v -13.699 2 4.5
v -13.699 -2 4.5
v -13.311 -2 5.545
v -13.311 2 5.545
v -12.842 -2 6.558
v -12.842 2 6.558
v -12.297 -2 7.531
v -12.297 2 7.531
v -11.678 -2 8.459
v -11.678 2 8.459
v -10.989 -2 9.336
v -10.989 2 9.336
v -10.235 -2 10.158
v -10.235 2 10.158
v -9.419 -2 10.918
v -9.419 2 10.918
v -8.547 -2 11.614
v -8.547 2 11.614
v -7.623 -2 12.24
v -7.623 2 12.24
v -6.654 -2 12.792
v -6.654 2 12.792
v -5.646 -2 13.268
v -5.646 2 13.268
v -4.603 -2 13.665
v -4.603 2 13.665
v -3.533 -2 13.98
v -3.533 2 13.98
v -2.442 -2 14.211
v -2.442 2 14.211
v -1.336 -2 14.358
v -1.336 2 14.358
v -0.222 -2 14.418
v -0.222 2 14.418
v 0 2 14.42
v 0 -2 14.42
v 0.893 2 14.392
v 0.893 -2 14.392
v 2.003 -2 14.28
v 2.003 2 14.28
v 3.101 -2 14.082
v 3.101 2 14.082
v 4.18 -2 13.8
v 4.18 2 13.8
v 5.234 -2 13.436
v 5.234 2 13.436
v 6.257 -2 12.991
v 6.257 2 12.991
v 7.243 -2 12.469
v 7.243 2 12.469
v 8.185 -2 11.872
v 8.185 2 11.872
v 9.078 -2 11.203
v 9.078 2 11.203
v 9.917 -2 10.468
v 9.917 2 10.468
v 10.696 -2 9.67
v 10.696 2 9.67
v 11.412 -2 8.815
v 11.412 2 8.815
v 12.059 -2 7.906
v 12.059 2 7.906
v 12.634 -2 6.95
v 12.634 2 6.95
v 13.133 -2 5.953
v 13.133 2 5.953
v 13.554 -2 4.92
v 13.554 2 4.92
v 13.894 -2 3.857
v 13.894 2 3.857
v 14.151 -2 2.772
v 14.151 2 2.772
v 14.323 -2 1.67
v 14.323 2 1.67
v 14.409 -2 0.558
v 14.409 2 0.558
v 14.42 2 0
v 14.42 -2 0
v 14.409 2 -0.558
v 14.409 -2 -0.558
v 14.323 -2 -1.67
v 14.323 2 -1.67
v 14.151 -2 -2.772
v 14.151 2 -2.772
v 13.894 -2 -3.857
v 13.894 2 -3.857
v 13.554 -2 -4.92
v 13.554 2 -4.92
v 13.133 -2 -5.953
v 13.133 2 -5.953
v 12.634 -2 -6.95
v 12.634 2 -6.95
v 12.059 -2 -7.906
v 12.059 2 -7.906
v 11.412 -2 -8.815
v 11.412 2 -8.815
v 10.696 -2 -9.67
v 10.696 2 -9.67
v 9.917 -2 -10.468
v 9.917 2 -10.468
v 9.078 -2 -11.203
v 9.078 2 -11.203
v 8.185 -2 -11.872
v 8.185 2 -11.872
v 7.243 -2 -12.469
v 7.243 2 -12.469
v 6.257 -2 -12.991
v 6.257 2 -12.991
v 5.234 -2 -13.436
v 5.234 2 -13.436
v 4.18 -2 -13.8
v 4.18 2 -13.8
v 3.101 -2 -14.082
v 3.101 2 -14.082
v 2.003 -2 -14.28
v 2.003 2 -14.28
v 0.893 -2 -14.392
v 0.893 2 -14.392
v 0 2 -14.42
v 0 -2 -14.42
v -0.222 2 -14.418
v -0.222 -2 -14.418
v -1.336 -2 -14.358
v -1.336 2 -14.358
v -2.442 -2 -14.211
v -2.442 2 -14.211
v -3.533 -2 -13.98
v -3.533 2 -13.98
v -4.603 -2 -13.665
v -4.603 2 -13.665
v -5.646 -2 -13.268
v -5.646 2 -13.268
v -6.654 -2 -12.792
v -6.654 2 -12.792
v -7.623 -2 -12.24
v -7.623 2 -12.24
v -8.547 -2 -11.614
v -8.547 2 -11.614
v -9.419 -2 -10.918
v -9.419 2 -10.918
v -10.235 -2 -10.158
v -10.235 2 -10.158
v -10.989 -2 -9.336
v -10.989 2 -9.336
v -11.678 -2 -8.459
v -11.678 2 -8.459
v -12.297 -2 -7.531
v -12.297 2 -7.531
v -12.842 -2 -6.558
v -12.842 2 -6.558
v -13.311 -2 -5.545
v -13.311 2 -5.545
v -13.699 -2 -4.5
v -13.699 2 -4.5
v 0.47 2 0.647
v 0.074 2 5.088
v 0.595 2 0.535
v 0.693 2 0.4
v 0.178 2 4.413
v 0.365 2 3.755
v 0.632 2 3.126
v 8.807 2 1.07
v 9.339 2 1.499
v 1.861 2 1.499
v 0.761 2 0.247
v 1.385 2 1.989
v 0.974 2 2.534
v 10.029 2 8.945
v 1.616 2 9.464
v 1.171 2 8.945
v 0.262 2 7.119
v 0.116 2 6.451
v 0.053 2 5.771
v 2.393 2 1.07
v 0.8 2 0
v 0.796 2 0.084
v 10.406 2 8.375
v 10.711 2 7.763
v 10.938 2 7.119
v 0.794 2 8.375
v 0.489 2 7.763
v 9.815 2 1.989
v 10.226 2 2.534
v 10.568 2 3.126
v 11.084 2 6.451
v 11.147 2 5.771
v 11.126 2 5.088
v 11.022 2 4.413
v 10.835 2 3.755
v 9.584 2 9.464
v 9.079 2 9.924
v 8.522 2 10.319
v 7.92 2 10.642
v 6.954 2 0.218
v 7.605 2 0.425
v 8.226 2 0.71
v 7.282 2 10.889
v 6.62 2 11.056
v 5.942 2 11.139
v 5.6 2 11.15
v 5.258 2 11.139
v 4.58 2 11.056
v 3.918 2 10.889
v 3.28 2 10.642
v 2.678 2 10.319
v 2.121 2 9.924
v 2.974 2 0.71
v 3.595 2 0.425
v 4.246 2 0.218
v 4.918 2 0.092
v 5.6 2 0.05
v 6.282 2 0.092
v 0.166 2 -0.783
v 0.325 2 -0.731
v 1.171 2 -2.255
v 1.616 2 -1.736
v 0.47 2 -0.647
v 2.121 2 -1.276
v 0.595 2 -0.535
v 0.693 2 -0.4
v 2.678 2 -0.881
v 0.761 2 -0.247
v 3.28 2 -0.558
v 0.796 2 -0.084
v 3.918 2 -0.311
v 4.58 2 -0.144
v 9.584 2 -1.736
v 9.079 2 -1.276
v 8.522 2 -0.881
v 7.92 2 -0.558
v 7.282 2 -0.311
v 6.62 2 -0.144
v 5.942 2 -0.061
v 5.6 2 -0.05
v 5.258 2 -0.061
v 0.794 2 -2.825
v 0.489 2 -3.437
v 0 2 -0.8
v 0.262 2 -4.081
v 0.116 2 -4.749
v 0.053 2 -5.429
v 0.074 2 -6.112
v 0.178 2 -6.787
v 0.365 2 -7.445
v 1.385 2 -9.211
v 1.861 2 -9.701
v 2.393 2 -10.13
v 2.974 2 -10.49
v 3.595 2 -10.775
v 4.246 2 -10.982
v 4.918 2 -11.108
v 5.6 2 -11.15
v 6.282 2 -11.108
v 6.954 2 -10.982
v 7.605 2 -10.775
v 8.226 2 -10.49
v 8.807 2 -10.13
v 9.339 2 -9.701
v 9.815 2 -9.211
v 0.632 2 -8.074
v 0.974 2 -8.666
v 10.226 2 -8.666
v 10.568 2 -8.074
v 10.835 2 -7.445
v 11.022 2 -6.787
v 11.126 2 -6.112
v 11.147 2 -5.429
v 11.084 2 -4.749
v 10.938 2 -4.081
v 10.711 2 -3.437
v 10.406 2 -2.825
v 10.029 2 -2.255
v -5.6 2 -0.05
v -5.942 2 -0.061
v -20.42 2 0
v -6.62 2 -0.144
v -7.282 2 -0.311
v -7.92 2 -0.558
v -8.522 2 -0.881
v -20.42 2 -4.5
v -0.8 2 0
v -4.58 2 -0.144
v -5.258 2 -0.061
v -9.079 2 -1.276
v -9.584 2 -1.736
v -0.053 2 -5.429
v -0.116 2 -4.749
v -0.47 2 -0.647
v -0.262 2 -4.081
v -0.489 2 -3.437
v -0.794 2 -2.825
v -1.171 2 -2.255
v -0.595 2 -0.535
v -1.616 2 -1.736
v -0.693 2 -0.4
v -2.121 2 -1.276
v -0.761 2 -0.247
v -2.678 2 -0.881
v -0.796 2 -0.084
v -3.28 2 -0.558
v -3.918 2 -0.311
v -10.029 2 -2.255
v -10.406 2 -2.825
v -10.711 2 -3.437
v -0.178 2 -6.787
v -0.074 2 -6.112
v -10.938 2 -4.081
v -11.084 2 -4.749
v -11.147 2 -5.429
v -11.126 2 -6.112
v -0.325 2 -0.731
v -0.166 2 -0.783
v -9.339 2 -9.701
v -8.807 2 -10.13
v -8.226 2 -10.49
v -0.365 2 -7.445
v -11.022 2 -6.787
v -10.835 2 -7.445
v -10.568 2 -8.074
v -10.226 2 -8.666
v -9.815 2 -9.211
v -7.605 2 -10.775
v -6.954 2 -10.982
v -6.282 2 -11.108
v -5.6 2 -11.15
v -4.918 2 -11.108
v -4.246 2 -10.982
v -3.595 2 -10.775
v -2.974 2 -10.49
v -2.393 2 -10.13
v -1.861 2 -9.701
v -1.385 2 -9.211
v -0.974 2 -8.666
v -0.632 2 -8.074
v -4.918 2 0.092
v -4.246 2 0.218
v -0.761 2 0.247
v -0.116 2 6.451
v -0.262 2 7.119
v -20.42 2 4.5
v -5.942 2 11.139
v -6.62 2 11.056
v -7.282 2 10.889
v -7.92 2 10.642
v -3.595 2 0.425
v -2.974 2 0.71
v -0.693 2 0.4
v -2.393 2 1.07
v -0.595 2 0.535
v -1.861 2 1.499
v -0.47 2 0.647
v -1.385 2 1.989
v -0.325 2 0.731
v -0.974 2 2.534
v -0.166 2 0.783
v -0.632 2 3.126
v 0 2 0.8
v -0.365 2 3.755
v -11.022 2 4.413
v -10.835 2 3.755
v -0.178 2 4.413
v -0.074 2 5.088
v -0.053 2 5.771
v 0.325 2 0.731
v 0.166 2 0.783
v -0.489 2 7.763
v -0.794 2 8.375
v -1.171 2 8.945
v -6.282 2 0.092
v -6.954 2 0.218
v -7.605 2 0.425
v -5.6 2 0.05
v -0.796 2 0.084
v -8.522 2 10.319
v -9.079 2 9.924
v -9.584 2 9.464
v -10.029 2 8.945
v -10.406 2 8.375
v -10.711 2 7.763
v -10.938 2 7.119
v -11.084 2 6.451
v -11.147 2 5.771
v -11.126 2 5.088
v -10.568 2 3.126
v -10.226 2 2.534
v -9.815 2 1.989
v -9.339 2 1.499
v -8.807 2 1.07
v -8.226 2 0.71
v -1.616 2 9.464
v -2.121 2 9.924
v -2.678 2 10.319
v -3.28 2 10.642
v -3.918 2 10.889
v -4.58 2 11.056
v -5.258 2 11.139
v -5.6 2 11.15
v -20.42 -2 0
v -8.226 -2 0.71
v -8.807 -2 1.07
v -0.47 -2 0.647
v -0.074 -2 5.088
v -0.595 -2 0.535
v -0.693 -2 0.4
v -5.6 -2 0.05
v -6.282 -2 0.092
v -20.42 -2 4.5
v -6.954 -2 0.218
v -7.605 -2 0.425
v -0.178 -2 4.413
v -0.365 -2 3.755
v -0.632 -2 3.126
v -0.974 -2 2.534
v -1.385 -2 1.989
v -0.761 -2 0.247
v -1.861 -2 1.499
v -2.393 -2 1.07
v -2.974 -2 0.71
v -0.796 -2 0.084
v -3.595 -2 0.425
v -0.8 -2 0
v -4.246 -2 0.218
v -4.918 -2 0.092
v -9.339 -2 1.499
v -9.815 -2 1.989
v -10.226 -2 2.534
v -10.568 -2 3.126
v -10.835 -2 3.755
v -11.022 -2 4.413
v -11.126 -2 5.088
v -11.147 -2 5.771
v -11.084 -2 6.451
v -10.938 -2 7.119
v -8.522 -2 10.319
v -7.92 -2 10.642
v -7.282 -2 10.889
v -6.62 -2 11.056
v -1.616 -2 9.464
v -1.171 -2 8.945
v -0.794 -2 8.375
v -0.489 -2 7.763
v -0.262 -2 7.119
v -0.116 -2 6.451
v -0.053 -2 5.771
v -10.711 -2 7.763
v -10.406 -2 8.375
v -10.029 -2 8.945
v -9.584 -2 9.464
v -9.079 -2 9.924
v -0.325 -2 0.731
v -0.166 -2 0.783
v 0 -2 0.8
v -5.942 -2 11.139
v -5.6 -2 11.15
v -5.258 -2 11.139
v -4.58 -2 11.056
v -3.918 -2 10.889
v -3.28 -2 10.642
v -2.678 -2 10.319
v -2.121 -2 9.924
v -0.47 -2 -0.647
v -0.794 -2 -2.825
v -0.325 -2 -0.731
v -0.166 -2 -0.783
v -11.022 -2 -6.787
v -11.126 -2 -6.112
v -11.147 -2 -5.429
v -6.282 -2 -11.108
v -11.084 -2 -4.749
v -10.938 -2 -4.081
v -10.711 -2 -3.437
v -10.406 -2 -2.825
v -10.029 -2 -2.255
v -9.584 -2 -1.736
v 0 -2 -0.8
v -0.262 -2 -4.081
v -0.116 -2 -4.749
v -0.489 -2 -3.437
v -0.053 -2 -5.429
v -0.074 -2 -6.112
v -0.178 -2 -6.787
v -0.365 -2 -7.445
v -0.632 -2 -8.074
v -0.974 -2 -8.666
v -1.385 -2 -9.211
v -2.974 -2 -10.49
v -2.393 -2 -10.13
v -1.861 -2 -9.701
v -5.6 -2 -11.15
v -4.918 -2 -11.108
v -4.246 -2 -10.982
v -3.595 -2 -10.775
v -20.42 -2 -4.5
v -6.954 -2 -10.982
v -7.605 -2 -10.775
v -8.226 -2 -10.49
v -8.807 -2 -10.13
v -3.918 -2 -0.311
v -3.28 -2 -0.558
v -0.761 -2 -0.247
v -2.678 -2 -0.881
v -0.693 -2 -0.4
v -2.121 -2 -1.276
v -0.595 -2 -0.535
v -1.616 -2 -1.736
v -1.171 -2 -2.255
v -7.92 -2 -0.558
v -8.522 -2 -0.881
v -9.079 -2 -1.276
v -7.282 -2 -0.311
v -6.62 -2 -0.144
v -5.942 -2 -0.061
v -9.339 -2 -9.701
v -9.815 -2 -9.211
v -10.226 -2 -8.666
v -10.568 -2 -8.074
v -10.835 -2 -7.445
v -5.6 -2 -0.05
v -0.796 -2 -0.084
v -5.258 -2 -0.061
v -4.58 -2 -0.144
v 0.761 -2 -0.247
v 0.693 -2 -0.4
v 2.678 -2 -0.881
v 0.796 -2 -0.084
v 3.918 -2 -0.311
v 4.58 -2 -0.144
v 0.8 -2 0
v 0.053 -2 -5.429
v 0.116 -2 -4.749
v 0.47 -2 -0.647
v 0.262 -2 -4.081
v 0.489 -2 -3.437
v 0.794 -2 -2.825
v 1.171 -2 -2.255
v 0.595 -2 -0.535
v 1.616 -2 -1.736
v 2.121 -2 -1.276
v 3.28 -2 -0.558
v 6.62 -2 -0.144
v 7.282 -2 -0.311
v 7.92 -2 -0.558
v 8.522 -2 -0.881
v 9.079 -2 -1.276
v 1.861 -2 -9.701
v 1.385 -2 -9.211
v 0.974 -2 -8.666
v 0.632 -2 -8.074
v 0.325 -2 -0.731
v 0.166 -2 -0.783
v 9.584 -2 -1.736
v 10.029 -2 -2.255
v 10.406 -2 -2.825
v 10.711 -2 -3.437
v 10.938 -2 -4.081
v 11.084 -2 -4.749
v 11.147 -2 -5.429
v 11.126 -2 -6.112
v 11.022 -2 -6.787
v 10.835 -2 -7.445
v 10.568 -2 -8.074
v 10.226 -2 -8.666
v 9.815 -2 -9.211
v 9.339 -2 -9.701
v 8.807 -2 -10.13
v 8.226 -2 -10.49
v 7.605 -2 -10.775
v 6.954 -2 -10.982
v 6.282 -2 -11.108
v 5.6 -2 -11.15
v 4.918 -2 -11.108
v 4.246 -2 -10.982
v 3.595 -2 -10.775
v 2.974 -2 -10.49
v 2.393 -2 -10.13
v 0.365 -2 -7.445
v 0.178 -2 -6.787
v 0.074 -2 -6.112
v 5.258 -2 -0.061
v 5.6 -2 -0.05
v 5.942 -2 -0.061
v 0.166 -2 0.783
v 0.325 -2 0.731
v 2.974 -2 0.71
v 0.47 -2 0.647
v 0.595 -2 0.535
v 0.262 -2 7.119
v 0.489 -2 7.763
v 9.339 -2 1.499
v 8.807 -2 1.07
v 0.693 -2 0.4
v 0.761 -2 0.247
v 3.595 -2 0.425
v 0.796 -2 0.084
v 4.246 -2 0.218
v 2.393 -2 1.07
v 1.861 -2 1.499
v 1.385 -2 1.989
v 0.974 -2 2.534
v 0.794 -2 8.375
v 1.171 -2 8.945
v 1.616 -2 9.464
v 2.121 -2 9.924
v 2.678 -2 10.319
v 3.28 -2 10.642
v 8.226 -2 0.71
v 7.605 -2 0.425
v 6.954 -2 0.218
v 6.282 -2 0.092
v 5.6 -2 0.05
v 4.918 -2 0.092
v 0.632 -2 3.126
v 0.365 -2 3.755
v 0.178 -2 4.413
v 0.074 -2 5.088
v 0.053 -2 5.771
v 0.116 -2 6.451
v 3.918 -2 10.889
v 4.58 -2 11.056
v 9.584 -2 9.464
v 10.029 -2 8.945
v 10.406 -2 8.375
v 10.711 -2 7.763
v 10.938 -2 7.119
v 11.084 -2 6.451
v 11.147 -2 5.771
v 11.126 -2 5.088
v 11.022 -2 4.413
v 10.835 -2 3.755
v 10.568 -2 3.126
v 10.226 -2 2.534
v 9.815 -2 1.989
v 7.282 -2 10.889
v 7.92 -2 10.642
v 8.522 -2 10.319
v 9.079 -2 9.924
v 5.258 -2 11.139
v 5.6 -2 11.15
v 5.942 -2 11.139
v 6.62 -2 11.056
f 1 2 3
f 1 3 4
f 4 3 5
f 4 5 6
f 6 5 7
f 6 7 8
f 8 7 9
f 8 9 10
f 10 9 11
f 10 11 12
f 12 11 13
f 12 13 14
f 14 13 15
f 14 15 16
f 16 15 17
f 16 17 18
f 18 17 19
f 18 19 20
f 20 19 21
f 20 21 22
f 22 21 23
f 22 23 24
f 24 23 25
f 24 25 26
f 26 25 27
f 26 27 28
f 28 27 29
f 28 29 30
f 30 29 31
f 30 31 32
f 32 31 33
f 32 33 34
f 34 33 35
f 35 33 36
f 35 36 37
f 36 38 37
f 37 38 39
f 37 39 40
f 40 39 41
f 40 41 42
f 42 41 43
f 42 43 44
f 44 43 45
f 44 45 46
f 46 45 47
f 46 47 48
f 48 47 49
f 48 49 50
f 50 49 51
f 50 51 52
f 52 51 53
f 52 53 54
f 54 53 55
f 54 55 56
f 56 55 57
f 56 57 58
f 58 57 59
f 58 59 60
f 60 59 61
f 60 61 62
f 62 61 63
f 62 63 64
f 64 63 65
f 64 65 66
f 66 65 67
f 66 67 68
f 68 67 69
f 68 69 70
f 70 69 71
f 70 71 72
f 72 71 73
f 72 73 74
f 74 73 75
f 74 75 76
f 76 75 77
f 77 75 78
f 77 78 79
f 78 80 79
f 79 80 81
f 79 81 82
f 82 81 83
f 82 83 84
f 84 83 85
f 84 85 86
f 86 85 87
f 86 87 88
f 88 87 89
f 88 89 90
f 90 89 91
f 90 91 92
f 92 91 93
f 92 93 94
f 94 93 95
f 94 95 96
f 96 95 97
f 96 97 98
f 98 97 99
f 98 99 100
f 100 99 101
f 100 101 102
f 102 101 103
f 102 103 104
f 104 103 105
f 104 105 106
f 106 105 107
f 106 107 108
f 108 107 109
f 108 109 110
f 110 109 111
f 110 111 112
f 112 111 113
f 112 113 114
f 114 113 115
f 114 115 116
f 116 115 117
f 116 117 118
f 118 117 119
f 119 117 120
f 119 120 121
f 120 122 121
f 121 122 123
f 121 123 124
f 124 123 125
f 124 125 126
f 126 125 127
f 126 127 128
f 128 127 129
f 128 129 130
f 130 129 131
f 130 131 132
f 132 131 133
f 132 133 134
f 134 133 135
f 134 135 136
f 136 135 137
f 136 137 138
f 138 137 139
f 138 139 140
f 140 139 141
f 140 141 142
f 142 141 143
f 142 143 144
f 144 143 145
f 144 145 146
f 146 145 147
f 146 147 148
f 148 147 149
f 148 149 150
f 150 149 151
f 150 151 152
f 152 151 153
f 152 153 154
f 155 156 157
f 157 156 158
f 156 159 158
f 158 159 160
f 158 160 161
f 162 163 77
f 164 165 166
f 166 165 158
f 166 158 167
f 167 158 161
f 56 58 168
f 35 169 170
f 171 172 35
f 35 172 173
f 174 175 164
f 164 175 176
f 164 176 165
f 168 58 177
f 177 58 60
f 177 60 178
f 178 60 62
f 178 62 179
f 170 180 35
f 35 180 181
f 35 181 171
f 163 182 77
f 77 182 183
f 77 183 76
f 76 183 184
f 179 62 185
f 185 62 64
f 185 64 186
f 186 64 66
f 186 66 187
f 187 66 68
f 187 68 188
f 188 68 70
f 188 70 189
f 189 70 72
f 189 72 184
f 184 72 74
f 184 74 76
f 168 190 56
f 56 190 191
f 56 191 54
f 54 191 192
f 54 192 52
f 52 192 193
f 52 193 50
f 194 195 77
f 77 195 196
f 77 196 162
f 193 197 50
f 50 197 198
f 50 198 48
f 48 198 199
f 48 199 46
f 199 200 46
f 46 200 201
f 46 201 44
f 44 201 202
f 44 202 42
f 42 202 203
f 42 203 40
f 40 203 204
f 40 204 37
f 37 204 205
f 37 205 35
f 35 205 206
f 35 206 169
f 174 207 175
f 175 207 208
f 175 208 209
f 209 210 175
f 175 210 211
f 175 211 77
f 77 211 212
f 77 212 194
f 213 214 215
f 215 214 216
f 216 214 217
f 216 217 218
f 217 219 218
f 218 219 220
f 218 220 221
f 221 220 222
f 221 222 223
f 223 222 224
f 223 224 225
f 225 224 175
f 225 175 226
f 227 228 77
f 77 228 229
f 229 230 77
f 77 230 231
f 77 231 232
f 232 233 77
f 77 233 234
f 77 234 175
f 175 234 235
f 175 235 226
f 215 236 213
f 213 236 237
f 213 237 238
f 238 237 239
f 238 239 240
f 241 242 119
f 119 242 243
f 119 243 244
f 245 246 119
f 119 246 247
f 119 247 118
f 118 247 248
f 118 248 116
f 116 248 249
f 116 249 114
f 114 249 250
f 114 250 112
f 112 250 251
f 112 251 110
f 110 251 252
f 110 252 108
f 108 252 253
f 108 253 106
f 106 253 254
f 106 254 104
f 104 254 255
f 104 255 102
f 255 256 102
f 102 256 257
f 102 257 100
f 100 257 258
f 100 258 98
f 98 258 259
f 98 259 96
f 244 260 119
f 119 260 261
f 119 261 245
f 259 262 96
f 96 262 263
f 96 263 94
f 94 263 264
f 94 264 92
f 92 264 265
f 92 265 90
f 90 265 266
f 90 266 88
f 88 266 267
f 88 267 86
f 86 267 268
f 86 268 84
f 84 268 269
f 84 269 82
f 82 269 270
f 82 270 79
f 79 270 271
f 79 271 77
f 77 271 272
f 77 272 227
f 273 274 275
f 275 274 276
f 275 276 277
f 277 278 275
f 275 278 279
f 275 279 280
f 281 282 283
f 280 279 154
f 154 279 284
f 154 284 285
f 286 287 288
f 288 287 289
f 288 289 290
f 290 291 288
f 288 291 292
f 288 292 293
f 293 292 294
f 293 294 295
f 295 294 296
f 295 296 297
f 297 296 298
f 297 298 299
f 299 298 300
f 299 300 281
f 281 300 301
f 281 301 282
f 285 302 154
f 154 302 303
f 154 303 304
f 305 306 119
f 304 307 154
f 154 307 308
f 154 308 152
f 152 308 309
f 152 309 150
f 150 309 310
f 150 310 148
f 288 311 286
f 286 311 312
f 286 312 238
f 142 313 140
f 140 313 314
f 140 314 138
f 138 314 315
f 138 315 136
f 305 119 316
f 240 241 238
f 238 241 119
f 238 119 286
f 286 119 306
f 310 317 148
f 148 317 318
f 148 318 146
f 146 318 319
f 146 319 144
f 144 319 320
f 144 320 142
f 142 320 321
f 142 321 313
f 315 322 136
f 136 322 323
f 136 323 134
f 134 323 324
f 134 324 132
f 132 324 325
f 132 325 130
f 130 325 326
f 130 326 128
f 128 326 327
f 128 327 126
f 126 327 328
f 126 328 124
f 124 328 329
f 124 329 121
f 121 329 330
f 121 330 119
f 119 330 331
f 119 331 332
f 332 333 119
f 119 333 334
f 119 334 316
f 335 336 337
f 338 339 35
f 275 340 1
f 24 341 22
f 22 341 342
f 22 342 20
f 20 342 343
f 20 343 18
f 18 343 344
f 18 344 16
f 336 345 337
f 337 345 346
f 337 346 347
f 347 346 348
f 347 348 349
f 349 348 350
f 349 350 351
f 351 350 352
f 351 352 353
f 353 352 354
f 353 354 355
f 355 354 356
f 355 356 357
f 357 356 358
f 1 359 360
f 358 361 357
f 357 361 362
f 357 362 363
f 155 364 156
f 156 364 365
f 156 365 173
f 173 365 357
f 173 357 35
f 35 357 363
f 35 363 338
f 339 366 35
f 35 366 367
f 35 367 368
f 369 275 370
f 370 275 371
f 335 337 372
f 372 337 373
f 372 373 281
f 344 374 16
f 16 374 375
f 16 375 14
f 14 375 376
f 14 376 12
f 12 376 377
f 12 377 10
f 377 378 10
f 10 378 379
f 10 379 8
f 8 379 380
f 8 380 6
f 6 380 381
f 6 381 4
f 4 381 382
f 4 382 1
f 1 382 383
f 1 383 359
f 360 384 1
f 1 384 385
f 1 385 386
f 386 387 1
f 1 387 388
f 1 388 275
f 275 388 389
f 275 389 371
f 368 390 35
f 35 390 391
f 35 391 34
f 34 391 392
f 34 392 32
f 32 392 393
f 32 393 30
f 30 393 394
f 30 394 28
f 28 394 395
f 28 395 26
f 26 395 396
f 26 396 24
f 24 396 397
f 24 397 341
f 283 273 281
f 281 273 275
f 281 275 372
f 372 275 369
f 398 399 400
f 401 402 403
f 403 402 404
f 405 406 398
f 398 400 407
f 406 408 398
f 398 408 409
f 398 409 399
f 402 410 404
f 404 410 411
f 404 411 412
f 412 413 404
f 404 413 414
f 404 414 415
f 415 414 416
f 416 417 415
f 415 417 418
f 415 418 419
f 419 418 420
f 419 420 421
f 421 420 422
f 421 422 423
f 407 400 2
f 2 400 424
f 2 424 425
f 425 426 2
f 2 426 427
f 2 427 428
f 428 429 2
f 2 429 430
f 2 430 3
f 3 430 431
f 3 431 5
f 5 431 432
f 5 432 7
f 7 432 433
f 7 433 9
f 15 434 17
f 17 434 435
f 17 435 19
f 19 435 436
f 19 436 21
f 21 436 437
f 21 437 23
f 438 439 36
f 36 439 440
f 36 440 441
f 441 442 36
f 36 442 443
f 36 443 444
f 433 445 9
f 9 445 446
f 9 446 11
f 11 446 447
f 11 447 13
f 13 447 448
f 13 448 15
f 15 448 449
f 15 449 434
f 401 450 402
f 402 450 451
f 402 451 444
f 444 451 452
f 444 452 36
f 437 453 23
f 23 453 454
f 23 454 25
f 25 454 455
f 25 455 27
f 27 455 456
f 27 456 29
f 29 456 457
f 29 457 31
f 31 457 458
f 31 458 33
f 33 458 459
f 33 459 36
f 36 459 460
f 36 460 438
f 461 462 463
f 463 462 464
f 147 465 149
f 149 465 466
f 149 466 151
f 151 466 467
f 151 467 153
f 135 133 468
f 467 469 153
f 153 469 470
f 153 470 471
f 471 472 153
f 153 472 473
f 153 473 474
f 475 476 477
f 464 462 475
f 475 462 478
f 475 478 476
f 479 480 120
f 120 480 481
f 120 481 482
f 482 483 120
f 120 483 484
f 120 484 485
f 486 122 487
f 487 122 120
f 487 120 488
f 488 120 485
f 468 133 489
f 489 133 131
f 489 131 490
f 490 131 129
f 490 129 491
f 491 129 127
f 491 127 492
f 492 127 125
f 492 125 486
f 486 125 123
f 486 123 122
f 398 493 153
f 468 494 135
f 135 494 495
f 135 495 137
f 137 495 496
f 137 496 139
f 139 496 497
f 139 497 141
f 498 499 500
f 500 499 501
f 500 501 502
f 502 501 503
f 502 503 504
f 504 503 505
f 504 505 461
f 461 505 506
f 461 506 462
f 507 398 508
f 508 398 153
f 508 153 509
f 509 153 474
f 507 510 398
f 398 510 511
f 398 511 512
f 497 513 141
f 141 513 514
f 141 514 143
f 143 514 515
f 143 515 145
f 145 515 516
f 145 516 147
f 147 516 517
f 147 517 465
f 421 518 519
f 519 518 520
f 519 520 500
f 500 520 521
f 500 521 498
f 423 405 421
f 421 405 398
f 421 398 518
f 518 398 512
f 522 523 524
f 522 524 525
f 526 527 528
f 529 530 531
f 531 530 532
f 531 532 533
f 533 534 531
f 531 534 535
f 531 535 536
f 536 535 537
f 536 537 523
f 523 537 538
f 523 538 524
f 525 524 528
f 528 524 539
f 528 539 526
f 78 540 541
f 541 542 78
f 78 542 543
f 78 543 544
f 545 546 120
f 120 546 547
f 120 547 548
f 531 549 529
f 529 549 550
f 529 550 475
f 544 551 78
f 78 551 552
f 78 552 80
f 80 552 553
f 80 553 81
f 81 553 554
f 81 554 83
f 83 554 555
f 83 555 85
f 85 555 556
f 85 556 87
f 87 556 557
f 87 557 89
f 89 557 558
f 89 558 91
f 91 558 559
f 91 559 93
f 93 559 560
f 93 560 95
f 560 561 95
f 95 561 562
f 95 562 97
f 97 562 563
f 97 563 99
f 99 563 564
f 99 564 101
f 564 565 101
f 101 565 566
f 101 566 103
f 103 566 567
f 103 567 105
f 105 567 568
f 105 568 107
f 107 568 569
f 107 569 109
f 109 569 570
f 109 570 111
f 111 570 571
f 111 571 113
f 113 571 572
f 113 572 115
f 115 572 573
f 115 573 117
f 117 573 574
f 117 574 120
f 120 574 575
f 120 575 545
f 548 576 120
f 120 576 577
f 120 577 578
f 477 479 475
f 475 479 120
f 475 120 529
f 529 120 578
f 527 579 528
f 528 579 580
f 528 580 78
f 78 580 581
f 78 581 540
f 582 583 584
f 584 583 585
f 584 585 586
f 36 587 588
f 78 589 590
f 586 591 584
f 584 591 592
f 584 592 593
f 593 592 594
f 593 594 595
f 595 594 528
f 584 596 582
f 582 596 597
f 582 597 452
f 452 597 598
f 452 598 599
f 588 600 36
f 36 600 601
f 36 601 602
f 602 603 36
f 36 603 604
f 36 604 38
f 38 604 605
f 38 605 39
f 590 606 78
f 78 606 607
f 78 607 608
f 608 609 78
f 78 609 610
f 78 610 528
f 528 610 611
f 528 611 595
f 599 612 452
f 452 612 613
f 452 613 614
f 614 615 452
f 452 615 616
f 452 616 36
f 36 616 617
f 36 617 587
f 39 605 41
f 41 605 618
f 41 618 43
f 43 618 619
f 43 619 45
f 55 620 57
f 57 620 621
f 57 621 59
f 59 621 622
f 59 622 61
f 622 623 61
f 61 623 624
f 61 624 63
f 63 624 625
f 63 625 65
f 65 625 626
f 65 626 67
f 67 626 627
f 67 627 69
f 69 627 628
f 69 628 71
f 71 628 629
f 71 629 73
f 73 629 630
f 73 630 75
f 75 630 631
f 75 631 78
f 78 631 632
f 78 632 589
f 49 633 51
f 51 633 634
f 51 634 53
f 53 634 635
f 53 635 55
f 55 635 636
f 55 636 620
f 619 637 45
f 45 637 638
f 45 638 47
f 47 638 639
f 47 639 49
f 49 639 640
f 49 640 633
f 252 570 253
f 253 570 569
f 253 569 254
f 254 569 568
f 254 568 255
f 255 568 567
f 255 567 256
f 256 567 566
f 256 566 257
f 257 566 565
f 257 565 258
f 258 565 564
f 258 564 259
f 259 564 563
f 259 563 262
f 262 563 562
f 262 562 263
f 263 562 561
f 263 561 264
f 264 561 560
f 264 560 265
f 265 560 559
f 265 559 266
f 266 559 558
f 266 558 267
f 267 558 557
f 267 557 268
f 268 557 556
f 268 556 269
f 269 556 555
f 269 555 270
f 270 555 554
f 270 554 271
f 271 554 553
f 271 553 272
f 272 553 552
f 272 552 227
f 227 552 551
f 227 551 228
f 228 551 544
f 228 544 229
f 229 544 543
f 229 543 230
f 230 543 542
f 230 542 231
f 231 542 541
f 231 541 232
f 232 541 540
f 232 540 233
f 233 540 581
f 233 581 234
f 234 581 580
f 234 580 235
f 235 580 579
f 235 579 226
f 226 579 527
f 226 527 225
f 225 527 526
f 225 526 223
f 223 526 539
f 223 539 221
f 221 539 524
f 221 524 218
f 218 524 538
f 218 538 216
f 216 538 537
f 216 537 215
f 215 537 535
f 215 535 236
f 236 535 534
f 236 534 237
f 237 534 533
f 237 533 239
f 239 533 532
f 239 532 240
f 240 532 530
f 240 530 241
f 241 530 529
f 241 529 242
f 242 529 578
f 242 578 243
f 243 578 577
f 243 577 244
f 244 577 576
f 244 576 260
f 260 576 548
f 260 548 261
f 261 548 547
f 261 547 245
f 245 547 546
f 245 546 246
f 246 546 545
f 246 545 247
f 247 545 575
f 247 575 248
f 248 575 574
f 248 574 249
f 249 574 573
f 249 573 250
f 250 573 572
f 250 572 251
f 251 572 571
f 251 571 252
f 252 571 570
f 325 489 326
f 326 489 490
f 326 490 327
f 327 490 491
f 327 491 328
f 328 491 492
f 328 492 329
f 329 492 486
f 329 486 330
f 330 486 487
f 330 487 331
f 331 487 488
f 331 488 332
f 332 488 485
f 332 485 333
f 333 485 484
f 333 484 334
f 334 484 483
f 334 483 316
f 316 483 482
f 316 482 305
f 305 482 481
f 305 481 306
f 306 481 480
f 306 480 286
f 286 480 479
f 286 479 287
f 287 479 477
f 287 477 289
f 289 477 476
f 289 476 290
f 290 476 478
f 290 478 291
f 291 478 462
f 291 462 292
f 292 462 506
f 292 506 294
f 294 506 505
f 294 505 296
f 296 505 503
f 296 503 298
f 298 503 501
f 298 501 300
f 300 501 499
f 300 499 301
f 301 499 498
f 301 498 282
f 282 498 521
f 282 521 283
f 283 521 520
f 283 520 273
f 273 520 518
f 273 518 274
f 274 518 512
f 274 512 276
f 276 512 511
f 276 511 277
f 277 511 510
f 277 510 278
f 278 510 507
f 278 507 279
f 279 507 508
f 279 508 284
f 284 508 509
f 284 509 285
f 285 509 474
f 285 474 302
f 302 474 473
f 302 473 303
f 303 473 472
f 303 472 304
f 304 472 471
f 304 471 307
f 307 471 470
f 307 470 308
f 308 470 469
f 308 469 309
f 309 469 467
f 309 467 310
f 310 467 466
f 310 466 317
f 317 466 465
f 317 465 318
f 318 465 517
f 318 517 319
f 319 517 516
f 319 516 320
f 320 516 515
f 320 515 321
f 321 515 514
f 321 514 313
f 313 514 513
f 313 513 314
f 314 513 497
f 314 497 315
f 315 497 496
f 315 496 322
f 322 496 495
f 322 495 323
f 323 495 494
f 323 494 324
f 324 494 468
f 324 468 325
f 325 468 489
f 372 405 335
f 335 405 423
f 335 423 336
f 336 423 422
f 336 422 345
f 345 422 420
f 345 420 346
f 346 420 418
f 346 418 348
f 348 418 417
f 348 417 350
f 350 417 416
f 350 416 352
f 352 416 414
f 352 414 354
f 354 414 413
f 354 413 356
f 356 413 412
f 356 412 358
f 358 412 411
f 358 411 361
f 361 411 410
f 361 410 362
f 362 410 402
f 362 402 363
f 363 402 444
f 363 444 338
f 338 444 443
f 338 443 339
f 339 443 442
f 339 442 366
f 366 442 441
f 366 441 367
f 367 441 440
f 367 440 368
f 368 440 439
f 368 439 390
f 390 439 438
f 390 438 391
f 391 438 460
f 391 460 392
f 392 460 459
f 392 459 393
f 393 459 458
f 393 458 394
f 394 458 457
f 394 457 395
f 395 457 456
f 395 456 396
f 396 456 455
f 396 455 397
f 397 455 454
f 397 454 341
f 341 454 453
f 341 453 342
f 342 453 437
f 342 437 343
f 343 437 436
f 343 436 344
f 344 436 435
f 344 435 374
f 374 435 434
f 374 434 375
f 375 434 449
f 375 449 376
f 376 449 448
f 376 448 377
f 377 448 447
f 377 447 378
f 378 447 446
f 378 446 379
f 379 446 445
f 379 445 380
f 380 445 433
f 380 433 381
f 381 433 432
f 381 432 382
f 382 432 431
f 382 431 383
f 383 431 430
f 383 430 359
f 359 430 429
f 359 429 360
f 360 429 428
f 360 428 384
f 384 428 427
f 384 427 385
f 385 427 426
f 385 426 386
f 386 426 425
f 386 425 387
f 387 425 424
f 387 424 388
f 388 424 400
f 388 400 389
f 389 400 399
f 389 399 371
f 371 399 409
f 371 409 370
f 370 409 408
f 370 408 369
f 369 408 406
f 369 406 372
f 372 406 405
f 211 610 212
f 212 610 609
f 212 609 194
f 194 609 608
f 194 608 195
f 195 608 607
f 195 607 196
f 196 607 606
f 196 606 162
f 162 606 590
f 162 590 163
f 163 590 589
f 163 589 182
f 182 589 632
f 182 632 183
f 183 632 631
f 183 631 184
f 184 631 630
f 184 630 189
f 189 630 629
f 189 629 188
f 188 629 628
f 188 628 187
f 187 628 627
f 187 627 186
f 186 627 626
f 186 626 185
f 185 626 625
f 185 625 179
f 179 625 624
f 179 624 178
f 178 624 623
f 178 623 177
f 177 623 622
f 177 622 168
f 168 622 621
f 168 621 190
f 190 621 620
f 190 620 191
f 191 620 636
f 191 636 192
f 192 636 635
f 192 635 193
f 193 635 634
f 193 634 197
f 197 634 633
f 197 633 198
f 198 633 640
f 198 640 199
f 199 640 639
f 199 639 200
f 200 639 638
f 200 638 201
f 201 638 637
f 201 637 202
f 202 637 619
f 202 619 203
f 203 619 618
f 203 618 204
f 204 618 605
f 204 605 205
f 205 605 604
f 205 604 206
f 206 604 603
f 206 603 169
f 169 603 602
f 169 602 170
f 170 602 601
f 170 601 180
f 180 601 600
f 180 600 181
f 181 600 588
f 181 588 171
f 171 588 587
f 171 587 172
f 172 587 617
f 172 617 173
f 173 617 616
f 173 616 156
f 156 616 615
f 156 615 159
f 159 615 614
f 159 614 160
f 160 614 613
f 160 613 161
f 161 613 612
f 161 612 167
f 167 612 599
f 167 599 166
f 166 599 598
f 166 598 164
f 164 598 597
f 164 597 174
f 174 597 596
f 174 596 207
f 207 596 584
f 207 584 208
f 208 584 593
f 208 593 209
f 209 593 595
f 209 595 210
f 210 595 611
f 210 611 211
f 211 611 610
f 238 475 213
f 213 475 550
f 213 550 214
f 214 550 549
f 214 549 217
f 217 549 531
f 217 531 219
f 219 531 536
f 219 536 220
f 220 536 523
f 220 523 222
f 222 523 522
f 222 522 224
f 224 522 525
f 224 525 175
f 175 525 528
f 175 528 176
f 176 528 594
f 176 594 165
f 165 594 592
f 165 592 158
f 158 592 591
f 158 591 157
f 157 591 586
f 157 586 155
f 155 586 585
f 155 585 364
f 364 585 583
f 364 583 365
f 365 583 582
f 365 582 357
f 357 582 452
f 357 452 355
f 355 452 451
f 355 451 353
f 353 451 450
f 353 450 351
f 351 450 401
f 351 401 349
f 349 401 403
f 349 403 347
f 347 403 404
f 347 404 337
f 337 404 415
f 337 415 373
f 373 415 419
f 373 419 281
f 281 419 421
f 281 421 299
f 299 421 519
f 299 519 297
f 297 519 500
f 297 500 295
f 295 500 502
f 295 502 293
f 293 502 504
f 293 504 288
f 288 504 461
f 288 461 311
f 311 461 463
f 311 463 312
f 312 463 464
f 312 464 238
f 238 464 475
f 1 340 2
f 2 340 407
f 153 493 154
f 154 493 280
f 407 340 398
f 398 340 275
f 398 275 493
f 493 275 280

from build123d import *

# Parameters (mm, degrees)
SKETCH1_R           = 14.419595949
SKETCH1_R_2         = 5.55
SKETCH1_R_3         = 0.8
PLACA_CABEZAL_DEPTH = 4
SKETCH2_W           = 7.5
SKETCH2_H           = 9
PATA_AL_HUESO_DEPTH = 4


with BuildPart() as part:
    # Sketch1 → Placa_cabezal (new body)
    with BuildSketch(Plane(origin=(0, -2, 0), x_dir=(1, 0, 0), z_dir=(0, 1, 0))):
        with Locations(Location((0, 0, 0), (0, 0, 270))):
            Circle(SKETCH1_R)
        with Locations(Location((5.6, 5.6, 0), (0, 0, 270))):
            Circle(SKETCH1_R_2, mode=Mode.SUBTRACT)
        with Locations(Location((-5.6, 5.6, 0), (0, 0, 270))):
            Circle(SKETCH1_R_2, mode=Mode.SUBTRACT)
        with Locations(Location((-5.6, -5.6, 0), (0, 0, 270))):
            Circle(SKETCH1_R_2, mode=Mode.SUBTRACT)
        with Locations(Location((5.6, -5.6, 0), (0, 0, 270))):
            Circle(SKETCH1_R_2, mode=Mode.SUBTRACT)
        with Locations(Location((0, 0, 0), (0, 0, 270))):
            Circle(SKETCH1_R_3, mode=Mode.SUBTRACT)
    extrude(amount=PLACA_CABEZAL_DEPTH)

    # Sketch2 → Pata_al_hueso (add)
    with BuildSketch(Plane(origin=(0, -2, 0), x_dir=(1, 0, 0), z_dir=(0, 1, 0))):
        with Locations((-16.669595949, 0)):
            Rectangle(SKETCH2_W, SKETCH2_H)
    extrude(amount=PATA_AL_HUESO_DEPTH)


solid = part.part
